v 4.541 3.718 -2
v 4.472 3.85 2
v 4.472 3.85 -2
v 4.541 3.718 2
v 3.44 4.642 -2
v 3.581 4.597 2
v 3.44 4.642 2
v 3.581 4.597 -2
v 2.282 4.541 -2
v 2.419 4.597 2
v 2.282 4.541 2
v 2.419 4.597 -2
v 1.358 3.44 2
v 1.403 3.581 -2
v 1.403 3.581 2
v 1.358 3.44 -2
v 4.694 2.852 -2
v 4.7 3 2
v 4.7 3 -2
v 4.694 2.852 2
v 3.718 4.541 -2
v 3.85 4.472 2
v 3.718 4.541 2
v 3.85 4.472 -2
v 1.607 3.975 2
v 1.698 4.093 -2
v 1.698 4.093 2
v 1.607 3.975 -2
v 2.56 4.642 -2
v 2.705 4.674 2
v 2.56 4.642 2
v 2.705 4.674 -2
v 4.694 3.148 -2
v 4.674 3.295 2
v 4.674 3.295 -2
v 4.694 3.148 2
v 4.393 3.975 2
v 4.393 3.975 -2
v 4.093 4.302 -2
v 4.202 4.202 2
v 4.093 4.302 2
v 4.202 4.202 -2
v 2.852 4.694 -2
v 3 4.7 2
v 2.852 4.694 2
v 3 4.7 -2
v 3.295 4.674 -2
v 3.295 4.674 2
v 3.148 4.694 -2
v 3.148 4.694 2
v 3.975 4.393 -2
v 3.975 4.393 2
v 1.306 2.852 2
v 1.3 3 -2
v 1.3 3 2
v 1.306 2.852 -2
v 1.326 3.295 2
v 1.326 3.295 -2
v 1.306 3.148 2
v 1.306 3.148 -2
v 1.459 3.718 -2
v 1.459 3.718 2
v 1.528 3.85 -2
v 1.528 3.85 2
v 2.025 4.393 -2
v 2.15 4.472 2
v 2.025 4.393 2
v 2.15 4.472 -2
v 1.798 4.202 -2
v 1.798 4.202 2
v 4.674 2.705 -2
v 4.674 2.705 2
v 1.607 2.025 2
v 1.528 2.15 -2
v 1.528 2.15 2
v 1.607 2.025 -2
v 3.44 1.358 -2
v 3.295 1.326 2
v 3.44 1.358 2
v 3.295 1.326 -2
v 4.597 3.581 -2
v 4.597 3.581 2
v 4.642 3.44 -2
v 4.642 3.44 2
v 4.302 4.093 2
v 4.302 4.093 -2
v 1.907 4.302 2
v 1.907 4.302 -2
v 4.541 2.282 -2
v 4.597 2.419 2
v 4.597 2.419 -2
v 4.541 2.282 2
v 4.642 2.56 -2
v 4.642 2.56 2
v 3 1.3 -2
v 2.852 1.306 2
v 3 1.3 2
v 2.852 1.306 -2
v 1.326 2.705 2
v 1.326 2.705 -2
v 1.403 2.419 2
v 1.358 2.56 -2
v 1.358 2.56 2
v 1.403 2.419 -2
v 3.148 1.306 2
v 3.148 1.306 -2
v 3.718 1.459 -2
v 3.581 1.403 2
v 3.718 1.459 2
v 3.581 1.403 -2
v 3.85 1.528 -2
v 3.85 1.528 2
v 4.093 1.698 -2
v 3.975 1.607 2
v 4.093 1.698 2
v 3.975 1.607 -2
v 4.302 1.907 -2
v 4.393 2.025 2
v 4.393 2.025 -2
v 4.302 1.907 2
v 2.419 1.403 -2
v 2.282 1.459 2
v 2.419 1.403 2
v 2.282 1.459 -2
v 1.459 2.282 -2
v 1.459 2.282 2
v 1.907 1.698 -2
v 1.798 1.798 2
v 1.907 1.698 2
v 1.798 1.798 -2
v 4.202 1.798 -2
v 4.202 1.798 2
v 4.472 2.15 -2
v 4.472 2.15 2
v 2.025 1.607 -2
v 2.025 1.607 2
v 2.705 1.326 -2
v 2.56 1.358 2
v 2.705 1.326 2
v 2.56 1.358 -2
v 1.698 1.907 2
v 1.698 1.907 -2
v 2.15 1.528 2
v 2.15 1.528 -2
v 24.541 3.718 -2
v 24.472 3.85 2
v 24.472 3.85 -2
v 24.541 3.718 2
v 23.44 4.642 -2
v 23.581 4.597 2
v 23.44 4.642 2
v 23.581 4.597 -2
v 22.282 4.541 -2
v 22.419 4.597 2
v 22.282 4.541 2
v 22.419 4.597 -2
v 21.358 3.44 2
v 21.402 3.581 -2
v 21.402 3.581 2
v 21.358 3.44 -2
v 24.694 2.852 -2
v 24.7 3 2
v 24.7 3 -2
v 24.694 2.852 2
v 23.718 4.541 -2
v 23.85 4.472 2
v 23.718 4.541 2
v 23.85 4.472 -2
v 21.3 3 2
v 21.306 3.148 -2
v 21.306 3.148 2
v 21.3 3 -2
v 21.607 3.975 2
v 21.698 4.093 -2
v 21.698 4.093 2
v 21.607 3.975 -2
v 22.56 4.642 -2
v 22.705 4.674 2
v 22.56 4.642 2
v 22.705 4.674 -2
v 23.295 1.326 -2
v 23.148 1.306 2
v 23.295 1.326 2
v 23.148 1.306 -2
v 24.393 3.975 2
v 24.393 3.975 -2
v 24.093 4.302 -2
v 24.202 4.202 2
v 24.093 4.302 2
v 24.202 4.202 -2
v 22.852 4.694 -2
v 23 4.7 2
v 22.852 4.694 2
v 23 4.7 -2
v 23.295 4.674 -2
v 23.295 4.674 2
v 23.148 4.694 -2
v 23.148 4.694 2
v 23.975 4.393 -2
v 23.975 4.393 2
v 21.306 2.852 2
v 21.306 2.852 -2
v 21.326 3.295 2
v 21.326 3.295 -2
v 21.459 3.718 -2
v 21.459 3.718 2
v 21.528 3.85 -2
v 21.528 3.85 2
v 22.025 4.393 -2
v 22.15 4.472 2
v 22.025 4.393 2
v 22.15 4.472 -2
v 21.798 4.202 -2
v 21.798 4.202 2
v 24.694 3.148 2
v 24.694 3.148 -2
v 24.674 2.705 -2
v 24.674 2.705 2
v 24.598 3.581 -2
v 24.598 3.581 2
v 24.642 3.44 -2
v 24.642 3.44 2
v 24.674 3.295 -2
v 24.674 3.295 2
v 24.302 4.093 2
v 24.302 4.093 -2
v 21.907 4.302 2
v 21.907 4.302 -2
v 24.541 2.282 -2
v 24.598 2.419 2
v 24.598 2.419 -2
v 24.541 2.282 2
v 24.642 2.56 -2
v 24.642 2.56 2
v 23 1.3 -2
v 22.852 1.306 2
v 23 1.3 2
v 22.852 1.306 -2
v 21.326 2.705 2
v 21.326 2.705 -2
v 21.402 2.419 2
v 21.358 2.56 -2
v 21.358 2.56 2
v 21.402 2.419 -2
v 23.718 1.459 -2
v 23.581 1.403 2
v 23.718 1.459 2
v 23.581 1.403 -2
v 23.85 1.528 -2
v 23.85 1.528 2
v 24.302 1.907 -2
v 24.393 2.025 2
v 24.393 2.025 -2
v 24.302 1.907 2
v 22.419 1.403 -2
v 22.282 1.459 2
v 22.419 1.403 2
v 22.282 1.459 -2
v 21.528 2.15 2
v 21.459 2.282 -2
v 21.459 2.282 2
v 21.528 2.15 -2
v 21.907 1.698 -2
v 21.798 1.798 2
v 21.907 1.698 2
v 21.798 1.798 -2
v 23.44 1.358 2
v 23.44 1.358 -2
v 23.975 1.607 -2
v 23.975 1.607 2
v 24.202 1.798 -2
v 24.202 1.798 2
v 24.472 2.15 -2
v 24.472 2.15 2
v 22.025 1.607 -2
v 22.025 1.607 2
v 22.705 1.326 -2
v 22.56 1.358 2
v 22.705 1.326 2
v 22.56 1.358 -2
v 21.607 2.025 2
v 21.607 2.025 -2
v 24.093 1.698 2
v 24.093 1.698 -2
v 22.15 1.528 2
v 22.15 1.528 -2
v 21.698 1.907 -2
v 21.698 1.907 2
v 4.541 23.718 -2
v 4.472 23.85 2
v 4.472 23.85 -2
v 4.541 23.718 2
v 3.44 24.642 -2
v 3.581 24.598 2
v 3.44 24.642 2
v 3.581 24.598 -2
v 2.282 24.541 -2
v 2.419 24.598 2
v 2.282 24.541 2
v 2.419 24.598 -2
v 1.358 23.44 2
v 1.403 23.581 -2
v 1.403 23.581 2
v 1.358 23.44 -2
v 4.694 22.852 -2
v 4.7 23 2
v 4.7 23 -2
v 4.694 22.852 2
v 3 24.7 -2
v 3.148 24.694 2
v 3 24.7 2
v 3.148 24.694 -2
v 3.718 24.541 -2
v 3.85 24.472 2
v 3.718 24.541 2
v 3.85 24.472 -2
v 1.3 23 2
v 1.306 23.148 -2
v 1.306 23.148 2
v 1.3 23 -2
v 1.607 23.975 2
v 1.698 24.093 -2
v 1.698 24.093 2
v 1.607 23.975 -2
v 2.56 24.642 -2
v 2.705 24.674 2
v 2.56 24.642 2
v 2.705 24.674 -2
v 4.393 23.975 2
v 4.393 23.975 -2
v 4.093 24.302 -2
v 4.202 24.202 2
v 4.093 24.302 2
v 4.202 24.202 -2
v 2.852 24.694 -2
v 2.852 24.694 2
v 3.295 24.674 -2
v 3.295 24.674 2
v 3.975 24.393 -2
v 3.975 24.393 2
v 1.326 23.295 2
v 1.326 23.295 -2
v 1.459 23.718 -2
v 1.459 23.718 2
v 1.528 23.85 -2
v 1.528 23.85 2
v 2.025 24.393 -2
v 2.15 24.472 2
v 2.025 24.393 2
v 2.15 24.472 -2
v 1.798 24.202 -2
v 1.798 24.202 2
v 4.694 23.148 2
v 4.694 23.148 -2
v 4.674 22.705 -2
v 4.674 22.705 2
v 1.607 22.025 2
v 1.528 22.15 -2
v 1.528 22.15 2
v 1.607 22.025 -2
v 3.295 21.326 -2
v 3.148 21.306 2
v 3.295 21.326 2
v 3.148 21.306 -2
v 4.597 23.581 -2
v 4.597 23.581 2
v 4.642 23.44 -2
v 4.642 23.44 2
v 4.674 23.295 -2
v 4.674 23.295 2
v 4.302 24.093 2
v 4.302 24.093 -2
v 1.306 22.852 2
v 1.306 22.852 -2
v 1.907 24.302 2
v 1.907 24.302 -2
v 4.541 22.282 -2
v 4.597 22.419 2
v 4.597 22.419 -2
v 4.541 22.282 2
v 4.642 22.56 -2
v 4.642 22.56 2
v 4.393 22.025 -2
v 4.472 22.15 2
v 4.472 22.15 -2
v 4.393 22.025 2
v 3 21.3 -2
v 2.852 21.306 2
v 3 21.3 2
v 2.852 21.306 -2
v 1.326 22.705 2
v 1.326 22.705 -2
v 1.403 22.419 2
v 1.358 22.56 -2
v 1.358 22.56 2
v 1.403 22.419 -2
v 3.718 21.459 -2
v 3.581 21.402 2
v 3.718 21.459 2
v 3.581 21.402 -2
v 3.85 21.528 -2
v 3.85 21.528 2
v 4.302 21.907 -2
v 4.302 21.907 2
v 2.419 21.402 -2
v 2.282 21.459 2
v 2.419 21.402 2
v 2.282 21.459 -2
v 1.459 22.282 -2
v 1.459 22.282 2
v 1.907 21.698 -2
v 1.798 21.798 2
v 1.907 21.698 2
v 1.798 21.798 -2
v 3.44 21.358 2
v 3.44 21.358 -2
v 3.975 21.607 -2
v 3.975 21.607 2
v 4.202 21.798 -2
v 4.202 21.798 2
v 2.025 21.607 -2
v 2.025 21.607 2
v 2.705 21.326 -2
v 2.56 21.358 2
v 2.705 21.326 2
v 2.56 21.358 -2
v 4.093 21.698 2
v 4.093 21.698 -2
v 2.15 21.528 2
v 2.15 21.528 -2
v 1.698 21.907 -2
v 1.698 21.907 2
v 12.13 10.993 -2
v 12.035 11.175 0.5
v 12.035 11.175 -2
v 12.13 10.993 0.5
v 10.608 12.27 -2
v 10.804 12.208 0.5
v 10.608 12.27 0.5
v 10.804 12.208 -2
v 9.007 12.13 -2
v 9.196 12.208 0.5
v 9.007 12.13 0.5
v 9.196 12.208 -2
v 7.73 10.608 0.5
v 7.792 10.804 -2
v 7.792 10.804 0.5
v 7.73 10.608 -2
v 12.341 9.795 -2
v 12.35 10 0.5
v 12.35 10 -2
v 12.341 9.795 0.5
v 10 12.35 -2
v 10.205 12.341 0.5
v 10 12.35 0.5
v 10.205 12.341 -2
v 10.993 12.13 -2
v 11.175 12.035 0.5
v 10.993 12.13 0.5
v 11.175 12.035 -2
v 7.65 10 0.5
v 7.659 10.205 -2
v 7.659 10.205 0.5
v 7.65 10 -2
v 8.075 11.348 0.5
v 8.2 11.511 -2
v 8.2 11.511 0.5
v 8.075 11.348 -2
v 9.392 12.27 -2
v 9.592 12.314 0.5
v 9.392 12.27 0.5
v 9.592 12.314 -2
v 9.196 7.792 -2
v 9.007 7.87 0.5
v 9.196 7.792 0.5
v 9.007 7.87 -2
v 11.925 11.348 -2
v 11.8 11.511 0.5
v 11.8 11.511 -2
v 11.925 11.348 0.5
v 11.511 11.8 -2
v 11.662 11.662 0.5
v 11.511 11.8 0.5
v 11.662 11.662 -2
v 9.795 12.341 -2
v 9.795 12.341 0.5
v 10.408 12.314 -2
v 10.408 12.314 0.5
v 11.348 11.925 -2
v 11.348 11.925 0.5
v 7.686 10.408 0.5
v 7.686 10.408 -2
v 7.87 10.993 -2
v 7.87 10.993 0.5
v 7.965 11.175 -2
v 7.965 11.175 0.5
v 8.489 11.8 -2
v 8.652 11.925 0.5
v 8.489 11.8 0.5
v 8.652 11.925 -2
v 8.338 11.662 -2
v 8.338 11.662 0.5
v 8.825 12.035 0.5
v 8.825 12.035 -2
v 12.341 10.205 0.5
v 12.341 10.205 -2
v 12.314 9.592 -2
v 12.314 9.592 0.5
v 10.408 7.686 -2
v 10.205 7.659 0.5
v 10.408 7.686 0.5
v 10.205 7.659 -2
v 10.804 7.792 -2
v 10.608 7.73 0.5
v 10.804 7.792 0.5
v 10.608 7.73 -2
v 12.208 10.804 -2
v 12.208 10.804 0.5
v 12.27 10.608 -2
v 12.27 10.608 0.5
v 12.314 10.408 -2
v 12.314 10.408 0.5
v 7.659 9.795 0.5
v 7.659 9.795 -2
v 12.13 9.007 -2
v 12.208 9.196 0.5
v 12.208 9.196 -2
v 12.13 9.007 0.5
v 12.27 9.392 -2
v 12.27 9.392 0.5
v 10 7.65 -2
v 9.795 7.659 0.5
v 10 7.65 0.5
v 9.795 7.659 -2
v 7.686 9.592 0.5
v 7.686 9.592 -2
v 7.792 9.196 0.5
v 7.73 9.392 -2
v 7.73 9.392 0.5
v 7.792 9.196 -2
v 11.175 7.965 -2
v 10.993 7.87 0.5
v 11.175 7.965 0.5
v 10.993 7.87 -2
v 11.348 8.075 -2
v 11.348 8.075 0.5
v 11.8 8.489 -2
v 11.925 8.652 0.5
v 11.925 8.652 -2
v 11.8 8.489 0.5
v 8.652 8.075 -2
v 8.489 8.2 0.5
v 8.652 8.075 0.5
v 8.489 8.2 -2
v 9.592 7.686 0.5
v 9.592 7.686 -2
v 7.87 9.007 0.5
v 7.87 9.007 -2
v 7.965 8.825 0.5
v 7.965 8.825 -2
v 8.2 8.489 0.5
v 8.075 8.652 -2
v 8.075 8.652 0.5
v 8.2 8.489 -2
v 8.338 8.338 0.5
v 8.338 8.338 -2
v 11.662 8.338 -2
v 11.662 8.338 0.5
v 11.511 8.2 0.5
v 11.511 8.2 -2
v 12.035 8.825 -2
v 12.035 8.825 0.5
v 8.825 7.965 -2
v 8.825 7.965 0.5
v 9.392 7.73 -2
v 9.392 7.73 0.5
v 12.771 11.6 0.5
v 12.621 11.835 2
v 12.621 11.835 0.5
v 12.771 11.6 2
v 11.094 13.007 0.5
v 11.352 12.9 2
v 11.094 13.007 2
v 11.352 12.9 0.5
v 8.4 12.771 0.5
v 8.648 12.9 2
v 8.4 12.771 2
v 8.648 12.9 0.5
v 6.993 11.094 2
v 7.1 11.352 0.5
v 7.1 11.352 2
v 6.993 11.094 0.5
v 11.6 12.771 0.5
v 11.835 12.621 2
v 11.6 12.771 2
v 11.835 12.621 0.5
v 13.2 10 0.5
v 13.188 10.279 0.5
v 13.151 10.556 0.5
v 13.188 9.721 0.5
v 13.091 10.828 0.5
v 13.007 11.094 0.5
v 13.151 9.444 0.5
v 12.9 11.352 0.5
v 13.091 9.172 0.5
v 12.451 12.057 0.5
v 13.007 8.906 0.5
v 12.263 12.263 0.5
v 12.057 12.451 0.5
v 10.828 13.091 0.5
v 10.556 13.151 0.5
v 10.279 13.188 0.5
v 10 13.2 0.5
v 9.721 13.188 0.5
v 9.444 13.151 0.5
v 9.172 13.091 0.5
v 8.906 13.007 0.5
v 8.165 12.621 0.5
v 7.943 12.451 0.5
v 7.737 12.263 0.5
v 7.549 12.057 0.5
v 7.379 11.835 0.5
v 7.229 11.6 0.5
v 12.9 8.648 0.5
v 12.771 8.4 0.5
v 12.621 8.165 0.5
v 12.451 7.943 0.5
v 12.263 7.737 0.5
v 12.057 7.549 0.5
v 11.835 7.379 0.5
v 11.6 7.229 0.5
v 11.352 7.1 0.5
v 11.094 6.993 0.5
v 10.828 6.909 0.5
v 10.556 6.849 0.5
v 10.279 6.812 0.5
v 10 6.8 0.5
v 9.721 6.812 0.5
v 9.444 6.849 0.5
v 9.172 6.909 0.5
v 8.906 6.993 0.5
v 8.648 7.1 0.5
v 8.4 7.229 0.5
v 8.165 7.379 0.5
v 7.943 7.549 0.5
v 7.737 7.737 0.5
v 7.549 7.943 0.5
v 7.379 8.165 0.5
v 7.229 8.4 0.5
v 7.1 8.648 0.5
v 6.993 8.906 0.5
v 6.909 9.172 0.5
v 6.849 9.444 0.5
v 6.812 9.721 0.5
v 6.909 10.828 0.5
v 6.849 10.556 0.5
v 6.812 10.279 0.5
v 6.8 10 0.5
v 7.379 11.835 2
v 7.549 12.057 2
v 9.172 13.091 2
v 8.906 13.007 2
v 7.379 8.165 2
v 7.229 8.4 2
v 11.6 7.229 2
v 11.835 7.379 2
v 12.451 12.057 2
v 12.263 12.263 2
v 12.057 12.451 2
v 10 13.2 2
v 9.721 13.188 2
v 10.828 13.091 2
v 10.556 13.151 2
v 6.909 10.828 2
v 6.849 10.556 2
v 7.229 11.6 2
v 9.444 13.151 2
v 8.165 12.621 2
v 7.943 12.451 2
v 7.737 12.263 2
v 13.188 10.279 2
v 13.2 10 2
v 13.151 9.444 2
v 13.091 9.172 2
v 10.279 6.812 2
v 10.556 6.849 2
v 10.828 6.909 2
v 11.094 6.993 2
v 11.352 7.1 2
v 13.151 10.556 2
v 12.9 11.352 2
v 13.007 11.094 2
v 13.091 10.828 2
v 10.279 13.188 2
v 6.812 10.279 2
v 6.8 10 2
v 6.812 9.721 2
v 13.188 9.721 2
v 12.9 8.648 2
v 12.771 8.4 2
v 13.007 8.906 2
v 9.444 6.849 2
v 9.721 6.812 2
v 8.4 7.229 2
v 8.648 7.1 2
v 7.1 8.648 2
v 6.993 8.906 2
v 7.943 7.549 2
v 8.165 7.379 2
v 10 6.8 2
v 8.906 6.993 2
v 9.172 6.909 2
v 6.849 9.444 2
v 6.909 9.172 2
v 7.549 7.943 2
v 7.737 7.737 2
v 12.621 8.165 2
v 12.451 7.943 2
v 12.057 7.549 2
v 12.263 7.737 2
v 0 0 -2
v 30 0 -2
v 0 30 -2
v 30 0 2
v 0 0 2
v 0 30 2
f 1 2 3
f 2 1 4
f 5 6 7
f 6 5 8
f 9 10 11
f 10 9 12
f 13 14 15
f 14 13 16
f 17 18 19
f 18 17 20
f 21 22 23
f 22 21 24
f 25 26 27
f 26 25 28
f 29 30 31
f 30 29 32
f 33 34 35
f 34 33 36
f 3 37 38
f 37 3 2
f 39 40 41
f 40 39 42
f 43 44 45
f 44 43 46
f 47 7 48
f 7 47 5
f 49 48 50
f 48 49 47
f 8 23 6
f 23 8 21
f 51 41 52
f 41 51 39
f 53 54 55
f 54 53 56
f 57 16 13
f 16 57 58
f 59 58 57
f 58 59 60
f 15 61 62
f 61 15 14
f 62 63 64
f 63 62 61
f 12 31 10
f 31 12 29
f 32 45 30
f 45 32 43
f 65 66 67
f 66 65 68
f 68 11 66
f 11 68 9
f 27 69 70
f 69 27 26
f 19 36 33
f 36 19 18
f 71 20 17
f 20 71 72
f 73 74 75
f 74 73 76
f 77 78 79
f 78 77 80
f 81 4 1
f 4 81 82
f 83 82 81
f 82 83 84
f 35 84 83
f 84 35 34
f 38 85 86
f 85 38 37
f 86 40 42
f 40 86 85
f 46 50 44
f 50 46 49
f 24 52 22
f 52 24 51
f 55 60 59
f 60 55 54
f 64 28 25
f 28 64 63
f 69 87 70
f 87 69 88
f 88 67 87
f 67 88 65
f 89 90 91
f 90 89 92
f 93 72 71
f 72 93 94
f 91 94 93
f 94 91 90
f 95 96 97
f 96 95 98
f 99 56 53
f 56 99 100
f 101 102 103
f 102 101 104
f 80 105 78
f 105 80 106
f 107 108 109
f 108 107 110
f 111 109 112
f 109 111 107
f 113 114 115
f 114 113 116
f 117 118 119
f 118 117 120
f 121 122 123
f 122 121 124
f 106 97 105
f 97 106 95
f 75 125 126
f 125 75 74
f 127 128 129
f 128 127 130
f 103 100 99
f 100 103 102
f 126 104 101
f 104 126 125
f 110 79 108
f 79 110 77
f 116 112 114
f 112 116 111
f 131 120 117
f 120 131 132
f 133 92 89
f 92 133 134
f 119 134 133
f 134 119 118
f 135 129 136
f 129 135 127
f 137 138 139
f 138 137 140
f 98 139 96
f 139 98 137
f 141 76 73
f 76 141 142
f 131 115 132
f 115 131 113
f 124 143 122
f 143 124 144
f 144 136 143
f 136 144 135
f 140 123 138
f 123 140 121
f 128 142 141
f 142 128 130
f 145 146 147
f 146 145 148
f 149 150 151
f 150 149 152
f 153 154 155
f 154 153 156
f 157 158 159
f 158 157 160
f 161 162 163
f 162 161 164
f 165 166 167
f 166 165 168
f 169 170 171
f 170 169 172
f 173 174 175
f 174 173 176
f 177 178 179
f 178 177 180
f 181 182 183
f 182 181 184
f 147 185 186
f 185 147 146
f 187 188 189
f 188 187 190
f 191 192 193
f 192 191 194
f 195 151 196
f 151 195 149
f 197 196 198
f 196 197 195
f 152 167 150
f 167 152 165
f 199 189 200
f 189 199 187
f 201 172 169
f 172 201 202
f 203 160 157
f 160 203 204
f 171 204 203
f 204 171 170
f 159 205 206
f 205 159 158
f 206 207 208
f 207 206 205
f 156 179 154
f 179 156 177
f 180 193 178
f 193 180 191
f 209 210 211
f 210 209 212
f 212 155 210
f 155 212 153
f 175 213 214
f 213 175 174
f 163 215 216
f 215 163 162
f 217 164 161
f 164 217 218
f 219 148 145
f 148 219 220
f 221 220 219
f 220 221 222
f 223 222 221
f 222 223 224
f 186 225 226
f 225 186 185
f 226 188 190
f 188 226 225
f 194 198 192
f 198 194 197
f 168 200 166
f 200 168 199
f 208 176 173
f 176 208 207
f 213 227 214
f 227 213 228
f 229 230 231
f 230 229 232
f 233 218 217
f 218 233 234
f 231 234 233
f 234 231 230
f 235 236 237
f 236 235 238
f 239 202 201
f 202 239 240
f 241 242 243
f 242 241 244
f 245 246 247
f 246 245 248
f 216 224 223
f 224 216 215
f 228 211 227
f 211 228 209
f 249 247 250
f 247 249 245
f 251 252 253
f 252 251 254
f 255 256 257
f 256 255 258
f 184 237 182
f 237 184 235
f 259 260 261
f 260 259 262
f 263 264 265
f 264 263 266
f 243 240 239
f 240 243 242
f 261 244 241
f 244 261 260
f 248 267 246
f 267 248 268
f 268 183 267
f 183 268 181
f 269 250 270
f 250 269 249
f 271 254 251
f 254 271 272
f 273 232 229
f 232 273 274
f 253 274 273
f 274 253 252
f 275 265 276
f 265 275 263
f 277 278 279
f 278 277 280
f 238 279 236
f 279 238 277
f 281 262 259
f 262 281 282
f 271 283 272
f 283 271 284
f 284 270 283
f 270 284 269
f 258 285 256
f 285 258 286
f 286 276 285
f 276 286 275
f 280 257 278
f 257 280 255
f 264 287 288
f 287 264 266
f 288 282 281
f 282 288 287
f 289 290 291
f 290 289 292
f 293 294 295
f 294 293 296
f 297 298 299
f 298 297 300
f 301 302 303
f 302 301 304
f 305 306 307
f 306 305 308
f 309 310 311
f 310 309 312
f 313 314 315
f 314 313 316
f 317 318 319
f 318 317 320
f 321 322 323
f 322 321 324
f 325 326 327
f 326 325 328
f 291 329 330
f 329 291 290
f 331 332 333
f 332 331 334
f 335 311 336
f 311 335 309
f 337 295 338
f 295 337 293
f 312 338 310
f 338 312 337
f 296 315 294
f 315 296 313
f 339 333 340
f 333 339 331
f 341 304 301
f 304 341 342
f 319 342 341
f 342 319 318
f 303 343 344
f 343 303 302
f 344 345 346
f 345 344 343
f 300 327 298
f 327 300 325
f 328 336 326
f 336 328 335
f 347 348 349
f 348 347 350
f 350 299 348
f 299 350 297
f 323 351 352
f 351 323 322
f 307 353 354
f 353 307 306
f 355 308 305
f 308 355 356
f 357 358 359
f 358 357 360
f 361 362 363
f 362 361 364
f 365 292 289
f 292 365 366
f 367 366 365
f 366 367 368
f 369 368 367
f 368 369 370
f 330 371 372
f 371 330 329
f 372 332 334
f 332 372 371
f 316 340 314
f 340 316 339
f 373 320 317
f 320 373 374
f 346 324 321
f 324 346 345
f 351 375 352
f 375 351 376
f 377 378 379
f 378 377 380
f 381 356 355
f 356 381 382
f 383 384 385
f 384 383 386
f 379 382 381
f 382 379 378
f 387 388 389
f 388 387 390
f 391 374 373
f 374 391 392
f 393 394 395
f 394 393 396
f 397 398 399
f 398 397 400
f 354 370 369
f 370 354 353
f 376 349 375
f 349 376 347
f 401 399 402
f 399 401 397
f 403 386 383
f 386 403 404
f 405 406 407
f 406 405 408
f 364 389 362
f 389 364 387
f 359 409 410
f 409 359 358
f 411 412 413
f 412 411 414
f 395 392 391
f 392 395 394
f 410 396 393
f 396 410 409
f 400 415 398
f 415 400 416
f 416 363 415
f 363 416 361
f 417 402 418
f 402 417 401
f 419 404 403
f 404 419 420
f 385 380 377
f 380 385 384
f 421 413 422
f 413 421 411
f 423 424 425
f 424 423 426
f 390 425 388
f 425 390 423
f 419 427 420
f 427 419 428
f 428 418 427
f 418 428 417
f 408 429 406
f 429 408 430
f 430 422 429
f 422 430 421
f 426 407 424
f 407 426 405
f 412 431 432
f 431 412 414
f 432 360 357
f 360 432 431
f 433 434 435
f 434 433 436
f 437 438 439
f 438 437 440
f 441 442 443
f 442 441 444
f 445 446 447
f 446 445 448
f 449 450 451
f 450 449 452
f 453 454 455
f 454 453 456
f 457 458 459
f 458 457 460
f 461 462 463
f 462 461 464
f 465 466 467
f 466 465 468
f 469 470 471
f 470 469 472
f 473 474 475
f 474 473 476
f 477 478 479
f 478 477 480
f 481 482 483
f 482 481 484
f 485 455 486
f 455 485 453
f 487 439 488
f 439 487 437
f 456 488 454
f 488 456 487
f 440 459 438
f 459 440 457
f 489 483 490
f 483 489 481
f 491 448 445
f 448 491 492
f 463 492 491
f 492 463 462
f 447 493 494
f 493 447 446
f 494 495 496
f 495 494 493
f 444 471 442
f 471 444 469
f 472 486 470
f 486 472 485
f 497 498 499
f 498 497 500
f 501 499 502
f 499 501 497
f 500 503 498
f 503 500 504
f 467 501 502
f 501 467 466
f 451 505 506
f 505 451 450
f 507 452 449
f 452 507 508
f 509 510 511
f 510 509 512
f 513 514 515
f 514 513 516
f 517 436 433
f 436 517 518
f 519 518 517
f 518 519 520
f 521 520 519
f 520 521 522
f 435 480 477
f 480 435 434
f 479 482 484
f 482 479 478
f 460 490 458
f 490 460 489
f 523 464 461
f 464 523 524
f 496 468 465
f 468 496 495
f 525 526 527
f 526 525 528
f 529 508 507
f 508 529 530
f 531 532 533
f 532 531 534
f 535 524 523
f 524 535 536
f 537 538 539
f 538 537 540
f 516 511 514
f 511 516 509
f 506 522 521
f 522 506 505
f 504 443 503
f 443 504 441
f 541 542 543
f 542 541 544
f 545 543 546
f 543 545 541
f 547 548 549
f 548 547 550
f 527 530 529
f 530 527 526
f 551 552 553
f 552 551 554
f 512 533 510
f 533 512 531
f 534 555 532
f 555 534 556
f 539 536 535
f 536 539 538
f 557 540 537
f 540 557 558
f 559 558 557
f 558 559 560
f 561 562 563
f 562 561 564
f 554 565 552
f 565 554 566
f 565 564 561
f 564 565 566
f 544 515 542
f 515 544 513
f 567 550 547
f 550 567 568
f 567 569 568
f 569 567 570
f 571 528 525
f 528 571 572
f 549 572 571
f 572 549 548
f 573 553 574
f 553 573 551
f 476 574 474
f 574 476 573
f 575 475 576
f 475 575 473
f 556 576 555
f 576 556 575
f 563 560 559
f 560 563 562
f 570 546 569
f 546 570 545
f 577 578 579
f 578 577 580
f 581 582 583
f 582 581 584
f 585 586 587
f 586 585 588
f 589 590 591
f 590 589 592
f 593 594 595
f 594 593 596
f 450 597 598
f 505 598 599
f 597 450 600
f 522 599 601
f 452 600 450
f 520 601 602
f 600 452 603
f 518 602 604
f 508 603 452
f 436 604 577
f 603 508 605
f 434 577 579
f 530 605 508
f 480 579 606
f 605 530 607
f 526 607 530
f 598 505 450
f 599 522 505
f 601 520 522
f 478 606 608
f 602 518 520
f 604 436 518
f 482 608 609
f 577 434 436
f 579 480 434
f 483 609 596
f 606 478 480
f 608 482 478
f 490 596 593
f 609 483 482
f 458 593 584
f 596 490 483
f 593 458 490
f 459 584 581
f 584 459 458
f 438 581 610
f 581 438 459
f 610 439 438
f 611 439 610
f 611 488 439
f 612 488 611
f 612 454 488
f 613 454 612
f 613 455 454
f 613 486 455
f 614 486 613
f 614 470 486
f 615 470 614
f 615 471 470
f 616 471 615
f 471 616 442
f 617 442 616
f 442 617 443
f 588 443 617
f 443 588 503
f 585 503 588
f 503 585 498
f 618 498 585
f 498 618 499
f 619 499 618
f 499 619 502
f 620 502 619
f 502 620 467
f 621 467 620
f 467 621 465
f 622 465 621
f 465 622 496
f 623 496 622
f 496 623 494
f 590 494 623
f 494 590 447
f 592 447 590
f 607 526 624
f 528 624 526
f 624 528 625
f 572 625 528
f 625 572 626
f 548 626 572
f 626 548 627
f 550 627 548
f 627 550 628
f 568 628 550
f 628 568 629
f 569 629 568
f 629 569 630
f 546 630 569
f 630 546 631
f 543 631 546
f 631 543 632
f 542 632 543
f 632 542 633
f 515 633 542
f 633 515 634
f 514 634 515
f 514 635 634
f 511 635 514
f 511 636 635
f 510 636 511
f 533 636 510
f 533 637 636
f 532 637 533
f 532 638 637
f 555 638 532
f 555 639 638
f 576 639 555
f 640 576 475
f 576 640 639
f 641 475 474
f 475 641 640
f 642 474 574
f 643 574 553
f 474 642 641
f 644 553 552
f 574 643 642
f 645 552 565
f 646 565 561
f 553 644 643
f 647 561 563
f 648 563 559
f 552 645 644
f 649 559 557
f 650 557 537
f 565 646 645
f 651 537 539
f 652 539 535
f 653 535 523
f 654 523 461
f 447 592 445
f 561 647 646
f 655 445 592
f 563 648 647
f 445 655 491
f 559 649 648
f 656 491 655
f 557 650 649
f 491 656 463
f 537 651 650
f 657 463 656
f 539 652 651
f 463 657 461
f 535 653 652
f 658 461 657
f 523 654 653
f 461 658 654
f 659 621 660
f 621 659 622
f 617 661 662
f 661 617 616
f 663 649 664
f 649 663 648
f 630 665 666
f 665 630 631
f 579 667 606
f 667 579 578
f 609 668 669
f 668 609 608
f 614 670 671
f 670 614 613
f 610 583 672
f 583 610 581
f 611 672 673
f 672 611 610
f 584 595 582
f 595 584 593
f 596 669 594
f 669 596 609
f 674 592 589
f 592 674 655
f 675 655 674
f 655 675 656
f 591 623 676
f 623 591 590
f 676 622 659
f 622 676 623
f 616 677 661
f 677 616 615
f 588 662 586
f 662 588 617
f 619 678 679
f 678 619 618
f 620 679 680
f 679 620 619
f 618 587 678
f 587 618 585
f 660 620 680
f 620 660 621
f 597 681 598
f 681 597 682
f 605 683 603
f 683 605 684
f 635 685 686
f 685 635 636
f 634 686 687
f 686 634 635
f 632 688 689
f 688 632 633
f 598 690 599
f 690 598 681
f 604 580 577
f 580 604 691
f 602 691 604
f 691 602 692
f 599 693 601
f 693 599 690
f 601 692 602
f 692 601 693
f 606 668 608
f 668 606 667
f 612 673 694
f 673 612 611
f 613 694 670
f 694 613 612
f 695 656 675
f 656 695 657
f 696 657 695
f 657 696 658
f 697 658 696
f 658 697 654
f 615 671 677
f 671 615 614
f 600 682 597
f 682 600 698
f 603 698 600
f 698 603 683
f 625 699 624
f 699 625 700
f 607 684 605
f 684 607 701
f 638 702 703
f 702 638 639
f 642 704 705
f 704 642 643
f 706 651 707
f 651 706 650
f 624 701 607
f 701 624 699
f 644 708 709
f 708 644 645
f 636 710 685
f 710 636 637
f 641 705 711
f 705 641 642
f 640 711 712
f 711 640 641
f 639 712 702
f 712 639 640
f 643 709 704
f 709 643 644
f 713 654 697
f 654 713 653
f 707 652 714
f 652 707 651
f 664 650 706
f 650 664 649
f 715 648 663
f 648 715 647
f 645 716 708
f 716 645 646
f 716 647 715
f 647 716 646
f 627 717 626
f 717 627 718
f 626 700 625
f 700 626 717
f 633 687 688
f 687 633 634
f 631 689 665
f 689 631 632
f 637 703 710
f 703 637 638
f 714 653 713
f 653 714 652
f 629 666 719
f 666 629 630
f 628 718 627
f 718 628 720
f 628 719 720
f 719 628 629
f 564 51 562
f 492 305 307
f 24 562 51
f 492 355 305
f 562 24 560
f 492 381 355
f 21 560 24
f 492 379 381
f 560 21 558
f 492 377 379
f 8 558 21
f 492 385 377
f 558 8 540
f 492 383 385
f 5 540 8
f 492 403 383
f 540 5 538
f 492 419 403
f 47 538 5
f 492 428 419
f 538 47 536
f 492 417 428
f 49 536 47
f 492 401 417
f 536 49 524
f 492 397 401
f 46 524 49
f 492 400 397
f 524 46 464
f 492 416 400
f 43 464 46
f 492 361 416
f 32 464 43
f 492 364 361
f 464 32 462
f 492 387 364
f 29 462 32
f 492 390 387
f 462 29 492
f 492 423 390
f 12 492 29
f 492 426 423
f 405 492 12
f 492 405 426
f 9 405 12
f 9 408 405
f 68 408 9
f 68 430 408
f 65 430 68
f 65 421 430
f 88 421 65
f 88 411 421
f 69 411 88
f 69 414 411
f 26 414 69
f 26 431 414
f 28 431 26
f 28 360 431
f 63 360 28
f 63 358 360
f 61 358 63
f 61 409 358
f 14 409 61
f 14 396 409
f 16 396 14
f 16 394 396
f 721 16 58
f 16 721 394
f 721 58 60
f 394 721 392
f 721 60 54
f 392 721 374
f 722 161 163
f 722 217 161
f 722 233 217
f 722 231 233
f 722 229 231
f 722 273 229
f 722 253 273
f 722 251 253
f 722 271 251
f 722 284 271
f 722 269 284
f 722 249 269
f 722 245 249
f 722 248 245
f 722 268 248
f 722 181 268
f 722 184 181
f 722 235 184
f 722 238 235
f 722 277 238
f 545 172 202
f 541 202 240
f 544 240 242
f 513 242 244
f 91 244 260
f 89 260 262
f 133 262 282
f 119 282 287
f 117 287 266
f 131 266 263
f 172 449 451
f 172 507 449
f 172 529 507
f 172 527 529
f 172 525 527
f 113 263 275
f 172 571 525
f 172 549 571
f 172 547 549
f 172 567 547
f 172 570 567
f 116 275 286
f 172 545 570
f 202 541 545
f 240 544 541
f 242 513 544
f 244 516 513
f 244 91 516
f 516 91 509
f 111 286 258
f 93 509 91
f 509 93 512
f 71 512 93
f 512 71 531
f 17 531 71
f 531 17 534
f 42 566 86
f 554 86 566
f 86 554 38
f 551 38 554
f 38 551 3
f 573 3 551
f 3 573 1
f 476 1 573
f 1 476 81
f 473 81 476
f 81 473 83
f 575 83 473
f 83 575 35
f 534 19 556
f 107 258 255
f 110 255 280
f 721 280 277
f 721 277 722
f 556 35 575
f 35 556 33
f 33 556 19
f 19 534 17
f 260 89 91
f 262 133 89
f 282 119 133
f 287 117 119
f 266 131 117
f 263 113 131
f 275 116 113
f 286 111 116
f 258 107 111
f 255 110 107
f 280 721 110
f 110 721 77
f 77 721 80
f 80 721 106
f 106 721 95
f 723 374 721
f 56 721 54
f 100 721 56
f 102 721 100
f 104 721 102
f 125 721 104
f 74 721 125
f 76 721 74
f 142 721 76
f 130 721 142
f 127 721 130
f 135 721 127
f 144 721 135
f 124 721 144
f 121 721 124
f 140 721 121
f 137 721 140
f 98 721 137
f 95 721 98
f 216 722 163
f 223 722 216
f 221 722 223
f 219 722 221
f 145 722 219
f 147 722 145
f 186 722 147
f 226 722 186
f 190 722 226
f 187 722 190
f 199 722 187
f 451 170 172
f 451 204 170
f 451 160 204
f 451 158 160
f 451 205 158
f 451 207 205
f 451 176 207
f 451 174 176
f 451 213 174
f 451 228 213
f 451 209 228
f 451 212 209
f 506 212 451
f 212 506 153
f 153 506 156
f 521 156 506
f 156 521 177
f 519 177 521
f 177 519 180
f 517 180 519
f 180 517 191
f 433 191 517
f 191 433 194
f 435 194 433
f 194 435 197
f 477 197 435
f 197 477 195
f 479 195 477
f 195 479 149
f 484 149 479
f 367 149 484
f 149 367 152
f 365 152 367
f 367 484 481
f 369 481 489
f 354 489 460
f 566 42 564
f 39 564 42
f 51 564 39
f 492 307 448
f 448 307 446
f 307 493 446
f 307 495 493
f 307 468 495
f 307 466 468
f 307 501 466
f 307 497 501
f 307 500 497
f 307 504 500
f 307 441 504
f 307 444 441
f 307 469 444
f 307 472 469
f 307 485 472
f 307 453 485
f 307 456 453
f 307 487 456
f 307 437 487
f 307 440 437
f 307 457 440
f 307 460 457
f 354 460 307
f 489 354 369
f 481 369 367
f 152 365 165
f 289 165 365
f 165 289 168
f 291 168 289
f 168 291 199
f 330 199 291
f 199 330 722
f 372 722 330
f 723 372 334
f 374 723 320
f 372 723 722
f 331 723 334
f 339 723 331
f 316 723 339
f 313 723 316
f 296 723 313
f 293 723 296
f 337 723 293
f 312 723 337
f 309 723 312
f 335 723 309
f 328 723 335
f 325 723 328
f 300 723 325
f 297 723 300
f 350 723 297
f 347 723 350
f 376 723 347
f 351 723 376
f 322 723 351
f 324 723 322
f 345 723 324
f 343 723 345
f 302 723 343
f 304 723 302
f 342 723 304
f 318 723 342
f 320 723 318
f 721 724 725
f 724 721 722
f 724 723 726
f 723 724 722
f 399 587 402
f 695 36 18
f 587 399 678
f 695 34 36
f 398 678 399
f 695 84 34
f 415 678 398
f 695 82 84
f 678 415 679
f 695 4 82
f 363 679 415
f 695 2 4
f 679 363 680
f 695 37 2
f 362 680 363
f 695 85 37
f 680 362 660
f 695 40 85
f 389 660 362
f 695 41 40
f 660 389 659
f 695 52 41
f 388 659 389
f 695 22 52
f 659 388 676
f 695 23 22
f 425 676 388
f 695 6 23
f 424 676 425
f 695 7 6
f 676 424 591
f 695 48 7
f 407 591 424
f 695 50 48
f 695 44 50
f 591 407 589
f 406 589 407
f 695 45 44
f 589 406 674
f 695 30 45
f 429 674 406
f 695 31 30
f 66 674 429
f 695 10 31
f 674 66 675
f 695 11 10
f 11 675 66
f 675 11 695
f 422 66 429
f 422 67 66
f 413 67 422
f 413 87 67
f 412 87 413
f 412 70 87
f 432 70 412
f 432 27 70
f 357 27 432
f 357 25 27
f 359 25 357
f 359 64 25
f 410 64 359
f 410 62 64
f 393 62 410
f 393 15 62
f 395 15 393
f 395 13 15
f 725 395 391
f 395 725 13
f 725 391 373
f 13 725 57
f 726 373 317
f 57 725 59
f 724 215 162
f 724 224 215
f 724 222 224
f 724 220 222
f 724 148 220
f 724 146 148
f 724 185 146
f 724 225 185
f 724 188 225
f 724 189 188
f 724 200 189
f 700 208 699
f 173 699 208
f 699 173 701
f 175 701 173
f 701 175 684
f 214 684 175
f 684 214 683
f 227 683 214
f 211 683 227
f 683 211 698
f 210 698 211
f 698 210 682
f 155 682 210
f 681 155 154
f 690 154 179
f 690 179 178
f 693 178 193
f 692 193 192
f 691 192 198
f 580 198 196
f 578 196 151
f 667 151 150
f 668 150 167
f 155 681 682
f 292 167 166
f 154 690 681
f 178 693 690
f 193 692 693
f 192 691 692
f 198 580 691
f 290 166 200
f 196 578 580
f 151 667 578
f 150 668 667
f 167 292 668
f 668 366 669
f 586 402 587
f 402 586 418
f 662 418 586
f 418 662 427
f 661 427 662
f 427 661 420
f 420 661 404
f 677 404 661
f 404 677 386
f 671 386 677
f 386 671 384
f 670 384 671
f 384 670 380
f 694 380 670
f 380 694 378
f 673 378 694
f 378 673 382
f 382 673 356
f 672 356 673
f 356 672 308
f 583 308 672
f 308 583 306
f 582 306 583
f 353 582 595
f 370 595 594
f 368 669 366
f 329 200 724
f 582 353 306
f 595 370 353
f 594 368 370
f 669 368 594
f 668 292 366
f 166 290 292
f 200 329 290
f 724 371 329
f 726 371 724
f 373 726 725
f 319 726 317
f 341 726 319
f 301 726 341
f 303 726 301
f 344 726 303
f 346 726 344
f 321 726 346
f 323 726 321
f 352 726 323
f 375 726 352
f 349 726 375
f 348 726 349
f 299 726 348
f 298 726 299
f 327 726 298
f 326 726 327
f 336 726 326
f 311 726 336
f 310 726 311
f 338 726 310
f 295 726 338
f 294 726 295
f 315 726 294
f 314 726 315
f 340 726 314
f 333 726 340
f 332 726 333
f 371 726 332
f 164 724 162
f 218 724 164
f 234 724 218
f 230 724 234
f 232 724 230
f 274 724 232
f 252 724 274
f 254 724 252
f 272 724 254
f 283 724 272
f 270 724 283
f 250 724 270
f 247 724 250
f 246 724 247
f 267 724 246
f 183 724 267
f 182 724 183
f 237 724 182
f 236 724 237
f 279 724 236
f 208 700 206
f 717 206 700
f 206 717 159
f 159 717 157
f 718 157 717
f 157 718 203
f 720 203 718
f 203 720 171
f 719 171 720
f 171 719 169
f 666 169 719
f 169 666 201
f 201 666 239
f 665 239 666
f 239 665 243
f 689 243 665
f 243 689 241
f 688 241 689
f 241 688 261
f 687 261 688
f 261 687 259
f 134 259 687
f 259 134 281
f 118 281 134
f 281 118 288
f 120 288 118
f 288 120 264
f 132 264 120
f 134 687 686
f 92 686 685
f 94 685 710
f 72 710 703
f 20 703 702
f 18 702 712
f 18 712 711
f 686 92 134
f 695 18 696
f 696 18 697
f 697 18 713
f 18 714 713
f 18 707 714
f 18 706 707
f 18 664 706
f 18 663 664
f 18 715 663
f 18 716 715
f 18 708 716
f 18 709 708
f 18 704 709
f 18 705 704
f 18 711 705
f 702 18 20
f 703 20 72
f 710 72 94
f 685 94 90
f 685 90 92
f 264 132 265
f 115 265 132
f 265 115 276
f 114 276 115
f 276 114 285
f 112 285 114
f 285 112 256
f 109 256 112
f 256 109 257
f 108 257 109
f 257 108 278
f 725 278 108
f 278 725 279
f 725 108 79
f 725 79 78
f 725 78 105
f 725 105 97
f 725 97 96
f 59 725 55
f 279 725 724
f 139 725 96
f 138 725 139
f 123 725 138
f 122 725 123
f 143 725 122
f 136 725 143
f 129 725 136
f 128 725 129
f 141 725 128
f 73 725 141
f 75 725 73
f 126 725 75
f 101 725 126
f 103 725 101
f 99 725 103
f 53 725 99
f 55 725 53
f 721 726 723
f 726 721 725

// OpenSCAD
$fa=5; $fs=0.1;

module servo_mount(){

difference(){
    
    linear_extrude(height = 4, center = true, convexity = 10, twist = 0, slices = 20, scale = 1.0) polygon(points=[[0,0],[30,0],[0,30]], paths=[[0,1,2]]);
    
    union()
    {
        // mounting holes
        translate([3, 3, 0]) cylinder(h=4.01, r=1.7, center=true);
        translate([23, 3, 0]) cylinder(h=4.01, r=1.7, center=true);
        translate([3, 23, 0]) cylinder(h=4.01, r=1.7, center=true);
        
        //servo hole
        translate([10, 10, 0]) cylinder(h=4.01, r=2.35, center=true);
        translate([10,10, 1.5]) cylinder(h=2, r=3.2, center=true);

    }
    
    
}
}

servo_mount();
